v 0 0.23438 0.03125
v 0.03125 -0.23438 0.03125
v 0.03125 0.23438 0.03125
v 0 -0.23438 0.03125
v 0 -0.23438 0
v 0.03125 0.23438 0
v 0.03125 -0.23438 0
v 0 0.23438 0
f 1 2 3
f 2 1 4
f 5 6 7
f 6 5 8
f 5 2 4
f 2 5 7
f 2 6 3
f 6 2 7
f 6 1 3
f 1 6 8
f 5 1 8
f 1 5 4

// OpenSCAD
// file: ../colors.scad
// colors.scad
// Credit: David Powell, OpenSCAN Forum



//group ABS_<colorname>
//	discription  common 3d printer ABS filament colors
// actual colours may need some tweaking

ABS_Nature =[0.8,0.8,0.8,0.8];
ABS_White =[0.9,0.9,0.9,1];
ABS_Black =[0.1,0.1,0.1,1];
ABS_Red = [0.7,0,0,1];
ABS_Green = [0,0.7,0,1];
ABS_Blue = [0,0,0.7,1];
ABS_Orange =[0.8,0.4,0,1];
ABS_Purple =[0.7,0,0.7,1];
ABS_Brown =[0.6,0.2,0.2,1];
ABS_Glow_Blue =[0,0,.99,1];
ABS_Flurescence_Green =[0,1,0,1];
ABS_Flurescence_Yellow = [0.9,0.9,0,1];

//group PLA_<colorname>
//	discription  common 3d printer PLA filament colors
// actual colours may need some tweaking

PLA_Nature =[0.8,0.8,0.8,0.8];
PLA_White =[0.9,0.9,0.9,1];
PLA_Black =[0.1,0.1,0.1,1];
PLA_Red = [0.7,0,0,1];
PLA_Green = [0,0.7,0,1];
PLA_Blue = [0,0,0.7,1];
PLA_Orange =[0.8,0.4,0,1];
PLA_Purple =[0.7,0,0.7,1];
PLA_Brown =[0.6,0.2,0.2,1];
PLA_Glow_Blue =[0,0,.99,1];
PLA_Flurescence_Green =[0,1,0,1];
PLA_Flurescence_Yellow = [0.9,0.9,0,1];

//group ANODIZED_<colorname>
//	discription  common aluminium anodized colors
// these don't seem to follow normal color tables as the process
// produces a color change difference to the named color
// dew to base metal
// actual colours may need some tweaking

ANODIZED_Red =[0.7,0,0,1];
ANODIZED_Gold =[0.8,0.8,0.0,1];
ANODIZED_Black =[0.1,0.1,0.1,1];
ANODIZED_Blue =[0,0,0.7,1];
ANODIZED_Green =[0,0.5,0,1];
ANODIZED_Gray =[0.4,0.4,0.4,1];
ANODIZED_Dark_Blue =[0,0.2,0.6,1];
ANODIZED_Lime_Green =[0,0.8,0,1];
ANODIZED_Purple =[0.5,0,0.7,1];		//more blue than purple
ANODIZED_Light_Blue =[0.4,0.4,1,1];
ANODIZED_Pink =[0.7,0,0.7,1];		//more purlpe than pink
ANODIZED_Orange =[0.9,0.5,0,1];
ANODIZED_Scandia_Gold =[0.9,0.6,0.3,1];
ANODIZED_Copper =[0.7,0.5,0,1];		//more brown than copper
ANODIZED_Clear =[0.7,0.7,0.9,1];	//natural aluminium color
ANODIZED_Light_Bronze =[0.4,0.4,0.3,1]; //more silver than bronze
ANODIZED_Gold_Nickel =[0.8,0.8,0.6,1];
ANODIZED_Brush_Nickel =[0.8,0.8,0.7,1];

//group METAL_<typename>
//	discription common metal colors
// colors need tweaking

METAL_Aluminium = [0.7,0.7,0.8,1];
METAL_Brass = [0.88,0.78,0.5,1];
METAL_Copper = [0.9,0.6,0.5,1];
METAL_Steel = [0.9,0.9,0.8,1];
METAL_Stainless = [0.8,0.8,0.7,1];
METAL_Titanium = [0.7,0.7,0.6,1];
METAL_Bronze = [0.9,0.4,0.4,1];
METAL_Gold = [0.9,0.9,0.0,1];
METAL_Silver = [0.8,0.8,0.8,1];
METAL_Iron = [0.6,0.6,0.6,1];

// group WOOD_<typename>
//	discription common wood colors
// probabaly wrong

WOOD_Oak = [0.4,0.2,0.2,1];
WOOD_Birch = [0.8,0.8,0.4,1];
WOOD_Red = [0.7,0.3,0.3,1];
WOOD_pine = [0.8,0.8,0.4,1];
WOOD_Beach = [0.8,0.6,0.3,1];
WOOD_Spruce = [0.8,0.8,0.7,1];
WOOD_Balsa = [0.95,0.86,0.73];

// group GLASS_<color>
//	discription common glass colors
// needs tweaking

GLASS_Clear = [0.8,0.8,0.8,0.2];
GLASS_Red = [0.8,0,0,0.4];
GLASS_Green = [0,0.8,0,.4];
GLASS_Blue = [0,0,0.8,.4];
GLASS_Brown = [0.5,0.3,0.1,.4];

CONCRETE = [210/255, 209/255, 205/255];
// file: MMlib/square_spar.scad
//####################################
// square_spar.scad
// (c) 2021 by Roie R. Black
//====================================


module square_spar(length=6,size=1/16) {
  translate([size/2, 0, size/2])
    cube([size,length,size], center=true);
}

square_spar(6,1/16);
// file: ../fin_data.scad
//#####################################
// fin-data.scad
// (c) 2021 by Roie R. Black
//=====================================
include <colors.scad>

fin_span = 2;
fin_chord = 4;
fin_radius = 1.5;
spar_size = 1/32;
fin_color = WOOD_Balsa;

//-------------------------------------
// calculated values

fin_le_length = fin_span - fin_radius - spar_size;
fin_te_length = fin_span -2*spar_size;
// main file
//#####################################
// leading_edge.scad = wing center section
// (c) 2021 by Roie R. Black
//=====================================
include <../fin_data.scad>
use <MMlib/square_spar.scad>

module leading_edge() {
		square_spar(fin_le_length,spar_size);
}

//====================================
// display this shape
leading_edge();
